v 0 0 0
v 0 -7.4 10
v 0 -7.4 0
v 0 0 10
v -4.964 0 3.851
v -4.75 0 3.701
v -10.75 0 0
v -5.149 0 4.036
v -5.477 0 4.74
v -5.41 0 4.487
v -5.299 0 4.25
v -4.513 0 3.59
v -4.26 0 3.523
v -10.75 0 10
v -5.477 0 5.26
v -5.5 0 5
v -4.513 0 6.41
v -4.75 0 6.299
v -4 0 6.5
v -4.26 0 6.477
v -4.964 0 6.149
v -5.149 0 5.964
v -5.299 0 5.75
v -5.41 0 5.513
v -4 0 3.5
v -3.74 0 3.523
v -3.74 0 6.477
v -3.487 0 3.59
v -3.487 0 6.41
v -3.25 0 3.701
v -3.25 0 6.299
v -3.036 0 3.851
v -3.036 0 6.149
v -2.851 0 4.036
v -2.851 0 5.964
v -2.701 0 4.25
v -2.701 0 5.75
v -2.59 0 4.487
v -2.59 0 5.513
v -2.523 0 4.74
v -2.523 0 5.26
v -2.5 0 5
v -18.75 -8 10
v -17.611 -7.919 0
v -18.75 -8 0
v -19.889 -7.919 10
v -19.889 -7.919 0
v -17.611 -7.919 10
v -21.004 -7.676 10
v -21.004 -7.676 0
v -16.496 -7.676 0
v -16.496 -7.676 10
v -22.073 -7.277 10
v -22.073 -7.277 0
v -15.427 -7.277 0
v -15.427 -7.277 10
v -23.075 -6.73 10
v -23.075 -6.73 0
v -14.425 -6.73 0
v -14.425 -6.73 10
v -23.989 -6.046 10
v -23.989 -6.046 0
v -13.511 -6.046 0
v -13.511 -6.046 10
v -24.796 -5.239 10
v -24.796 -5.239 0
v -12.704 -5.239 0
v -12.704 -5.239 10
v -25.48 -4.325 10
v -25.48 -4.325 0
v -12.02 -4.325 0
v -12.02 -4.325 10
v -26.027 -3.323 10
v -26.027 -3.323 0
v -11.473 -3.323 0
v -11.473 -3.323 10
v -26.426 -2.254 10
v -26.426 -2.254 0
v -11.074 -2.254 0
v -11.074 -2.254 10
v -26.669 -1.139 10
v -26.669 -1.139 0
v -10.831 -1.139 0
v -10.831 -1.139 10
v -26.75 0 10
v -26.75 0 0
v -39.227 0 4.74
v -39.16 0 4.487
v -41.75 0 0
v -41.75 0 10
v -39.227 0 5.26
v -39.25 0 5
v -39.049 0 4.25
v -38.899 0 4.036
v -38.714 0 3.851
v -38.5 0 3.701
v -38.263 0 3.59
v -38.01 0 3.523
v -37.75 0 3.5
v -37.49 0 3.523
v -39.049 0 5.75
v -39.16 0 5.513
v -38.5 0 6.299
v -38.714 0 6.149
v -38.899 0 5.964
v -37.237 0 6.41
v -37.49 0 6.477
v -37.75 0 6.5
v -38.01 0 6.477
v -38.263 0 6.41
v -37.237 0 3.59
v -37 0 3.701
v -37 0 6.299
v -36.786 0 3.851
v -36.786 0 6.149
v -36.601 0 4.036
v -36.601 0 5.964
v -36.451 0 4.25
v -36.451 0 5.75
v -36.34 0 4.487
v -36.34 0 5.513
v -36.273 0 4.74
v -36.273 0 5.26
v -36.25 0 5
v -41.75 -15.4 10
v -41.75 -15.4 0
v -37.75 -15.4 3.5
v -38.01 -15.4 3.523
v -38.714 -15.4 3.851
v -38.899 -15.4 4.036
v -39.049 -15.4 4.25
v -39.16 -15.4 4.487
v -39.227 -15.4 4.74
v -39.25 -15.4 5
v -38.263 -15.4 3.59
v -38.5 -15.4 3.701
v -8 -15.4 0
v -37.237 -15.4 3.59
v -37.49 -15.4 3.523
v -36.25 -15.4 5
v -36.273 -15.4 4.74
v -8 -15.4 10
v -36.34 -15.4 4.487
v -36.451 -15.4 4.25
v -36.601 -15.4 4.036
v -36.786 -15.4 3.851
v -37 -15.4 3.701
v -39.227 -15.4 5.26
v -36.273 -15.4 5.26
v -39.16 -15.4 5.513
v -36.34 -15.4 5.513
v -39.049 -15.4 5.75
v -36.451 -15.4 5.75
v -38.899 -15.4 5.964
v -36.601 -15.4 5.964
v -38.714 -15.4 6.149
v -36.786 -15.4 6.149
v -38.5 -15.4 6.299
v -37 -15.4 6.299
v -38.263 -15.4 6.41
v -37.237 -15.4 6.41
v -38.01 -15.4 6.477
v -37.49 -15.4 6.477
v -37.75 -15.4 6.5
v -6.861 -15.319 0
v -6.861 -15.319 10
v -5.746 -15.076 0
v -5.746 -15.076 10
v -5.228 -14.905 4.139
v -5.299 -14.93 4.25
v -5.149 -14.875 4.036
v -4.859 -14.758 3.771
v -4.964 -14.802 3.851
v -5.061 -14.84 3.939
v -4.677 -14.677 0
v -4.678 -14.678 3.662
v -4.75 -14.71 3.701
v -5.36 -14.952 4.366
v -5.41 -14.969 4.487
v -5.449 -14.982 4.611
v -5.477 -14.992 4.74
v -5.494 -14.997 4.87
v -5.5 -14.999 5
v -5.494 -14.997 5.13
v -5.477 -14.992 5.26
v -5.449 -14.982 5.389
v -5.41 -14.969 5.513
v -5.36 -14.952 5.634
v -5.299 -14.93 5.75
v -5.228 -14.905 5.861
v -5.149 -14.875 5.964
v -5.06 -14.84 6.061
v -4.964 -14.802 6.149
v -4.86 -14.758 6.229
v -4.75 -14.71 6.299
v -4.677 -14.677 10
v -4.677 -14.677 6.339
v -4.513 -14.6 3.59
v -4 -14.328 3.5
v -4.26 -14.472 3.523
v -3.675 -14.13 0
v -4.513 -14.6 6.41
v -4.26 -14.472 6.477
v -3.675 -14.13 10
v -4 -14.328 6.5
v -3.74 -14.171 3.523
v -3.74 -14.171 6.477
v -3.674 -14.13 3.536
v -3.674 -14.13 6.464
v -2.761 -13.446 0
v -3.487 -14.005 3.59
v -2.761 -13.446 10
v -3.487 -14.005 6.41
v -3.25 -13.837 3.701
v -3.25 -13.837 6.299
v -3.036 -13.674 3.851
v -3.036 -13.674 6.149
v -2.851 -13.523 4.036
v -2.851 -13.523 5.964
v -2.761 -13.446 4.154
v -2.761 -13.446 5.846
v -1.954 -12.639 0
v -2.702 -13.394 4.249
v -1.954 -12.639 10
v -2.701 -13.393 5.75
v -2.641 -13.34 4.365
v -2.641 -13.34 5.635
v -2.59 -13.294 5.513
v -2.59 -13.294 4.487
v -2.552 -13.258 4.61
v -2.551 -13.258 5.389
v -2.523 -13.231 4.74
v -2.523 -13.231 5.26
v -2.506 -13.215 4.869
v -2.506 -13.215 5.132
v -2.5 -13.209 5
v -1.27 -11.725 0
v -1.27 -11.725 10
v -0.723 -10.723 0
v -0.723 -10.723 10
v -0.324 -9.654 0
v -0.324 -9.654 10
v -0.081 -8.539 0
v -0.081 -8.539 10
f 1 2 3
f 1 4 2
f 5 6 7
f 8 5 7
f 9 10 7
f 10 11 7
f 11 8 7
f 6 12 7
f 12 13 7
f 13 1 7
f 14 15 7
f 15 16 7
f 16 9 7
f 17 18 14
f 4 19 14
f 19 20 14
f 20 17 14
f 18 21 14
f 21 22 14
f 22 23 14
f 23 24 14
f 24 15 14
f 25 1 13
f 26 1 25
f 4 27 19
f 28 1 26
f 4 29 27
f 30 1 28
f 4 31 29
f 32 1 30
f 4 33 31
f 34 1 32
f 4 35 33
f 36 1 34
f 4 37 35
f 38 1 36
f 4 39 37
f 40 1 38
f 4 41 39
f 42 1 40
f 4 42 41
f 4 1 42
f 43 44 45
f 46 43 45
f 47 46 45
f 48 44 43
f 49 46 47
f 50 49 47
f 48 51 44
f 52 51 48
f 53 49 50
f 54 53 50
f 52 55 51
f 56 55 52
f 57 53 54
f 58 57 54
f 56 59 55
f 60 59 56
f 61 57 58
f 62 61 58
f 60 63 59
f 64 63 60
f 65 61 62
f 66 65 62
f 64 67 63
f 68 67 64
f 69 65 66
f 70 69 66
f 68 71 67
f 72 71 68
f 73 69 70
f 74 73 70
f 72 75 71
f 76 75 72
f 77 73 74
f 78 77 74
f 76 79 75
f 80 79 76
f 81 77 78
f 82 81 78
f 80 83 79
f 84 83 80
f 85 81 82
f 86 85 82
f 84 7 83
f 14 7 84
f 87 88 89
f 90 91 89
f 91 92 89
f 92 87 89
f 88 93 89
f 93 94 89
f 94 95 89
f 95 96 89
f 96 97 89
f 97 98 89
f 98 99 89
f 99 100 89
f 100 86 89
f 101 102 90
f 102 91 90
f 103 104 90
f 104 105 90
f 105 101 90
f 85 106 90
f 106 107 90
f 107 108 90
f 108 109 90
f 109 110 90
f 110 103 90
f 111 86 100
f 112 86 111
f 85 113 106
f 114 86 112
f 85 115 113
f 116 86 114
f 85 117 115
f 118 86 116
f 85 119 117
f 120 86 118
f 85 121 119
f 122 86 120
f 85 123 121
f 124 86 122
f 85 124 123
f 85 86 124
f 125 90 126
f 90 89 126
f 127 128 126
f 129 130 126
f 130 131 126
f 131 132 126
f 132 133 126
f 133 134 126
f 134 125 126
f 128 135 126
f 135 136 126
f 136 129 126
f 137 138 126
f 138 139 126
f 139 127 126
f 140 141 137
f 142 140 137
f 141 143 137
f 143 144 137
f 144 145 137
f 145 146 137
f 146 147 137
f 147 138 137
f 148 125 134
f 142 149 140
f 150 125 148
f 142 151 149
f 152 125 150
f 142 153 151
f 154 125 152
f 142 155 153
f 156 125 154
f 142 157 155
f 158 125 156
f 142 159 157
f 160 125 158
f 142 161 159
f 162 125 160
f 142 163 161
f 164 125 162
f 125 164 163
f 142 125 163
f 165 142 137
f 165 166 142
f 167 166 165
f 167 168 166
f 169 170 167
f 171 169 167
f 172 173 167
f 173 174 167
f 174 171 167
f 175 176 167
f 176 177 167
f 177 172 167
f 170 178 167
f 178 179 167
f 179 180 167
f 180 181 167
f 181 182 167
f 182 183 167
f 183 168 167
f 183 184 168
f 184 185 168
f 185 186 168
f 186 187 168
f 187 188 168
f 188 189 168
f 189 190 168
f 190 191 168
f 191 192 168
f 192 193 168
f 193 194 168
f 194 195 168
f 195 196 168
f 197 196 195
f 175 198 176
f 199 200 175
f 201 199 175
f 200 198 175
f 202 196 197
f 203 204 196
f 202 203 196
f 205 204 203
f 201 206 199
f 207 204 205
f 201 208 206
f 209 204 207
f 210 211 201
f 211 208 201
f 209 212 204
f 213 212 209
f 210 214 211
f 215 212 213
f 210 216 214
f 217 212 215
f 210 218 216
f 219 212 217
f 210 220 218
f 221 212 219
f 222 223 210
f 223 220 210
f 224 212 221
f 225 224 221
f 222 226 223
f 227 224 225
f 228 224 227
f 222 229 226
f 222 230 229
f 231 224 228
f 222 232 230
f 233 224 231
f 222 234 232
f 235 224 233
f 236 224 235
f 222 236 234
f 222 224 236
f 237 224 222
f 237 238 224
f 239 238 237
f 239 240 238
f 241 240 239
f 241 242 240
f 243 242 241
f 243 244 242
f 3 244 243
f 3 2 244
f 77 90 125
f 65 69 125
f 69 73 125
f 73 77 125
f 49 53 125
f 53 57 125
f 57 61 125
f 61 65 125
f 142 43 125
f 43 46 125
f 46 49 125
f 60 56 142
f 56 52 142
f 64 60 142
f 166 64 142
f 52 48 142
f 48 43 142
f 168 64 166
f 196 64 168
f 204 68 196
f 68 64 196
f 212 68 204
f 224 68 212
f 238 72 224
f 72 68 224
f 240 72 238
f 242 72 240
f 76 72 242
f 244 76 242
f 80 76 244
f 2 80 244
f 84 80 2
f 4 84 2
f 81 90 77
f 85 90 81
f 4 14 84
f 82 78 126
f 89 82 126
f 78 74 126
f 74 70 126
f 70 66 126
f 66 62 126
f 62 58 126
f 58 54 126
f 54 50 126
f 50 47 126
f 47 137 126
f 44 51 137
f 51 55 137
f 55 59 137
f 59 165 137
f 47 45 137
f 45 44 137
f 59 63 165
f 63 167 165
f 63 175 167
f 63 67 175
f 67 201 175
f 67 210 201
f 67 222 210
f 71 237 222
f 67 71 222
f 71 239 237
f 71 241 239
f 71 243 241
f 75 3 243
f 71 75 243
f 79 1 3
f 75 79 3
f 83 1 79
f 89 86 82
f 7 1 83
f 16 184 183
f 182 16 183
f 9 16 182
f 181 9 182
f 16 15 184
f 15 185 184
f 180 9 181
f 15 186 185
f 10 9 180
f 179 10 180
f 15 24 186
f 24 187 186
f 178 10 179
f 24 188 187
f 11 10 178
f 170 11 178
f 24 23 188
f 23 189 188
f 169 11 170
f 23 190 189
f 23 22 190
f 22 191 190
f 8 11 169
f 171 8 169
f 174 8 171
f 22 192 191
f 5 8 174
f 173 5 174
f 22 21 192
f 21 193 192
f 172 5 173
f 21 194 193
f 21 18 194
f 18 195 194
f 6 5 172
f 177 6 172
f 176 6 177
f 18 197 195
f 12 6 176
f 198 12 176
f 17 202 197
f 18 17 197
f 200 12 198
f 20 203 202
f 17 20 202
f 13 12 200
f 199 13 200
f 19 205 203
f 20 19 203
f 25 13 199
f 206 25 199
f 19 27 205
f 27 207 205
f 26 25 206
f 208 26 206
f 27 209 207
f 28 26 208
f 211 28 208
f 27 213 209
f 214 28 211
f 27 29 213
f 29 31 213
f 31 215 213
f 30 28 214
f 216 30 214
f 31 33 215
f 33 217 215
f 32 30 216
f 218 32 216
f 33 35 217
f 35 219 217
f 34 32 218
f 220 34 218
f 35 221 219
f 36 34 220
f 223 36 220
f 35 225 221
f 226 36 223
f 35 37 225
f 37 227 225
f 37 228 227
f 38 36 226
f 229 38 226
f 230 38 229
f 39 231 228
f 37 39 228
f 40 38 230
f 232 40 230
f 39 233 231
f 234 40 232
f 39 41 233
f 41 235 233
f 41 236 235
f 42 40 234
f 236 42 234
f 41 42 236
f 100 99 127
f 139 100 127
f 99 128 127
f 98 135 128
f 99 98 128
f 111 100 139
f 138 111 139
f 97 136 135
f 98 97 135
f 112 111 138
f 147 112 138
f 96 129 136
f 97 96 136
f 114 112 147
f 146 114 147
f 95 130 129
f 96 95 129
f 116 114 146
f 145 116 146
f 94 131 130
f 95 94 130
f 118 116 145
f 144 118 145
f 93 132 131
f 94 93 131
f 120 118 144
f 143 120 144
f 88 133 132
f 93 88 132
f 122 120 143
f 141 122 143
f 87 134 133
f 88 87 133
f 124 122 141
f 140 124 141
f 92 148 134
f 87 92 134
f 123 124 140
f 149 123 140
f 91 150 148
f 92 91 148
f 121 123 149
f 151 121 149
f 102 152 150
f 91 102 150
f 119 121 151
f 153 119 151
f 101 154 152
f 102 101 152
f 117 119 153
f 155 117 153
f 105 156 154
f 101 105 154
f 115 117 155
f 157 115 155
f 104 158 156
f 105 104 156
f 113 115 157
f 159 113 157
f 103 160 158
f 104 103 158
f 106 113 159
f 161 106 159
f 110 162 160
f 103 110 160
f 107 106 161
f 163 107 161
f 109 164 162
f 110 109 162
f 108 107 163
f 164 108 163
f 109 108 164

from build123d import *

# Parameters (mm, degrees)
BOSS_EXTRUDE1_DEPTH = 10
SKETCH2_R           = 1.5
CUT_EXTRUDE1_DEPTH  = 46.609456256


with BuildPart() as part:
    # Sketch1 → Boss-Extrude1 (new body)
    with BuildSketch(Plane.XY):
        with BuildLine():
            Line((0, 0), (-10.75, 0))
            ThreePointArc((-10.75, 0), (-18.75, -8), (-26.75, 0))
            Line((-26.75, 0), (-41.75, 0))
            Line((-41.75, 0), (-41.75, -15.4))
            Line((-41.75, -15.4), (-8, -15.4))
            ThreePointArc((-8, -15.4), (-2.343145751, -13.056854249), (0, -7.4))
            Line((0, -7.4), (0, 0))
        make_face()
    extrude(amount=BOSS_EXTRUDE1_DEPTH)

    # Sketch2 → Cut-Extrude1 (cut, through all)
    with BuildSketch(Plane.XZ.offset(15.4)):
        with Locations(Location((-37.75, 5, 0), (0, 0, 270))):
            Circle(SKETCH2_R)
        with Locations(Location((-4, 5, 0), (0, 0, 270))):
            Circle(SKETCH2_R)
    extrude(amount=-CUT_EXTRUDE1_DEPTH, mode=Mode.SUBTRACT)


solid = part.part
